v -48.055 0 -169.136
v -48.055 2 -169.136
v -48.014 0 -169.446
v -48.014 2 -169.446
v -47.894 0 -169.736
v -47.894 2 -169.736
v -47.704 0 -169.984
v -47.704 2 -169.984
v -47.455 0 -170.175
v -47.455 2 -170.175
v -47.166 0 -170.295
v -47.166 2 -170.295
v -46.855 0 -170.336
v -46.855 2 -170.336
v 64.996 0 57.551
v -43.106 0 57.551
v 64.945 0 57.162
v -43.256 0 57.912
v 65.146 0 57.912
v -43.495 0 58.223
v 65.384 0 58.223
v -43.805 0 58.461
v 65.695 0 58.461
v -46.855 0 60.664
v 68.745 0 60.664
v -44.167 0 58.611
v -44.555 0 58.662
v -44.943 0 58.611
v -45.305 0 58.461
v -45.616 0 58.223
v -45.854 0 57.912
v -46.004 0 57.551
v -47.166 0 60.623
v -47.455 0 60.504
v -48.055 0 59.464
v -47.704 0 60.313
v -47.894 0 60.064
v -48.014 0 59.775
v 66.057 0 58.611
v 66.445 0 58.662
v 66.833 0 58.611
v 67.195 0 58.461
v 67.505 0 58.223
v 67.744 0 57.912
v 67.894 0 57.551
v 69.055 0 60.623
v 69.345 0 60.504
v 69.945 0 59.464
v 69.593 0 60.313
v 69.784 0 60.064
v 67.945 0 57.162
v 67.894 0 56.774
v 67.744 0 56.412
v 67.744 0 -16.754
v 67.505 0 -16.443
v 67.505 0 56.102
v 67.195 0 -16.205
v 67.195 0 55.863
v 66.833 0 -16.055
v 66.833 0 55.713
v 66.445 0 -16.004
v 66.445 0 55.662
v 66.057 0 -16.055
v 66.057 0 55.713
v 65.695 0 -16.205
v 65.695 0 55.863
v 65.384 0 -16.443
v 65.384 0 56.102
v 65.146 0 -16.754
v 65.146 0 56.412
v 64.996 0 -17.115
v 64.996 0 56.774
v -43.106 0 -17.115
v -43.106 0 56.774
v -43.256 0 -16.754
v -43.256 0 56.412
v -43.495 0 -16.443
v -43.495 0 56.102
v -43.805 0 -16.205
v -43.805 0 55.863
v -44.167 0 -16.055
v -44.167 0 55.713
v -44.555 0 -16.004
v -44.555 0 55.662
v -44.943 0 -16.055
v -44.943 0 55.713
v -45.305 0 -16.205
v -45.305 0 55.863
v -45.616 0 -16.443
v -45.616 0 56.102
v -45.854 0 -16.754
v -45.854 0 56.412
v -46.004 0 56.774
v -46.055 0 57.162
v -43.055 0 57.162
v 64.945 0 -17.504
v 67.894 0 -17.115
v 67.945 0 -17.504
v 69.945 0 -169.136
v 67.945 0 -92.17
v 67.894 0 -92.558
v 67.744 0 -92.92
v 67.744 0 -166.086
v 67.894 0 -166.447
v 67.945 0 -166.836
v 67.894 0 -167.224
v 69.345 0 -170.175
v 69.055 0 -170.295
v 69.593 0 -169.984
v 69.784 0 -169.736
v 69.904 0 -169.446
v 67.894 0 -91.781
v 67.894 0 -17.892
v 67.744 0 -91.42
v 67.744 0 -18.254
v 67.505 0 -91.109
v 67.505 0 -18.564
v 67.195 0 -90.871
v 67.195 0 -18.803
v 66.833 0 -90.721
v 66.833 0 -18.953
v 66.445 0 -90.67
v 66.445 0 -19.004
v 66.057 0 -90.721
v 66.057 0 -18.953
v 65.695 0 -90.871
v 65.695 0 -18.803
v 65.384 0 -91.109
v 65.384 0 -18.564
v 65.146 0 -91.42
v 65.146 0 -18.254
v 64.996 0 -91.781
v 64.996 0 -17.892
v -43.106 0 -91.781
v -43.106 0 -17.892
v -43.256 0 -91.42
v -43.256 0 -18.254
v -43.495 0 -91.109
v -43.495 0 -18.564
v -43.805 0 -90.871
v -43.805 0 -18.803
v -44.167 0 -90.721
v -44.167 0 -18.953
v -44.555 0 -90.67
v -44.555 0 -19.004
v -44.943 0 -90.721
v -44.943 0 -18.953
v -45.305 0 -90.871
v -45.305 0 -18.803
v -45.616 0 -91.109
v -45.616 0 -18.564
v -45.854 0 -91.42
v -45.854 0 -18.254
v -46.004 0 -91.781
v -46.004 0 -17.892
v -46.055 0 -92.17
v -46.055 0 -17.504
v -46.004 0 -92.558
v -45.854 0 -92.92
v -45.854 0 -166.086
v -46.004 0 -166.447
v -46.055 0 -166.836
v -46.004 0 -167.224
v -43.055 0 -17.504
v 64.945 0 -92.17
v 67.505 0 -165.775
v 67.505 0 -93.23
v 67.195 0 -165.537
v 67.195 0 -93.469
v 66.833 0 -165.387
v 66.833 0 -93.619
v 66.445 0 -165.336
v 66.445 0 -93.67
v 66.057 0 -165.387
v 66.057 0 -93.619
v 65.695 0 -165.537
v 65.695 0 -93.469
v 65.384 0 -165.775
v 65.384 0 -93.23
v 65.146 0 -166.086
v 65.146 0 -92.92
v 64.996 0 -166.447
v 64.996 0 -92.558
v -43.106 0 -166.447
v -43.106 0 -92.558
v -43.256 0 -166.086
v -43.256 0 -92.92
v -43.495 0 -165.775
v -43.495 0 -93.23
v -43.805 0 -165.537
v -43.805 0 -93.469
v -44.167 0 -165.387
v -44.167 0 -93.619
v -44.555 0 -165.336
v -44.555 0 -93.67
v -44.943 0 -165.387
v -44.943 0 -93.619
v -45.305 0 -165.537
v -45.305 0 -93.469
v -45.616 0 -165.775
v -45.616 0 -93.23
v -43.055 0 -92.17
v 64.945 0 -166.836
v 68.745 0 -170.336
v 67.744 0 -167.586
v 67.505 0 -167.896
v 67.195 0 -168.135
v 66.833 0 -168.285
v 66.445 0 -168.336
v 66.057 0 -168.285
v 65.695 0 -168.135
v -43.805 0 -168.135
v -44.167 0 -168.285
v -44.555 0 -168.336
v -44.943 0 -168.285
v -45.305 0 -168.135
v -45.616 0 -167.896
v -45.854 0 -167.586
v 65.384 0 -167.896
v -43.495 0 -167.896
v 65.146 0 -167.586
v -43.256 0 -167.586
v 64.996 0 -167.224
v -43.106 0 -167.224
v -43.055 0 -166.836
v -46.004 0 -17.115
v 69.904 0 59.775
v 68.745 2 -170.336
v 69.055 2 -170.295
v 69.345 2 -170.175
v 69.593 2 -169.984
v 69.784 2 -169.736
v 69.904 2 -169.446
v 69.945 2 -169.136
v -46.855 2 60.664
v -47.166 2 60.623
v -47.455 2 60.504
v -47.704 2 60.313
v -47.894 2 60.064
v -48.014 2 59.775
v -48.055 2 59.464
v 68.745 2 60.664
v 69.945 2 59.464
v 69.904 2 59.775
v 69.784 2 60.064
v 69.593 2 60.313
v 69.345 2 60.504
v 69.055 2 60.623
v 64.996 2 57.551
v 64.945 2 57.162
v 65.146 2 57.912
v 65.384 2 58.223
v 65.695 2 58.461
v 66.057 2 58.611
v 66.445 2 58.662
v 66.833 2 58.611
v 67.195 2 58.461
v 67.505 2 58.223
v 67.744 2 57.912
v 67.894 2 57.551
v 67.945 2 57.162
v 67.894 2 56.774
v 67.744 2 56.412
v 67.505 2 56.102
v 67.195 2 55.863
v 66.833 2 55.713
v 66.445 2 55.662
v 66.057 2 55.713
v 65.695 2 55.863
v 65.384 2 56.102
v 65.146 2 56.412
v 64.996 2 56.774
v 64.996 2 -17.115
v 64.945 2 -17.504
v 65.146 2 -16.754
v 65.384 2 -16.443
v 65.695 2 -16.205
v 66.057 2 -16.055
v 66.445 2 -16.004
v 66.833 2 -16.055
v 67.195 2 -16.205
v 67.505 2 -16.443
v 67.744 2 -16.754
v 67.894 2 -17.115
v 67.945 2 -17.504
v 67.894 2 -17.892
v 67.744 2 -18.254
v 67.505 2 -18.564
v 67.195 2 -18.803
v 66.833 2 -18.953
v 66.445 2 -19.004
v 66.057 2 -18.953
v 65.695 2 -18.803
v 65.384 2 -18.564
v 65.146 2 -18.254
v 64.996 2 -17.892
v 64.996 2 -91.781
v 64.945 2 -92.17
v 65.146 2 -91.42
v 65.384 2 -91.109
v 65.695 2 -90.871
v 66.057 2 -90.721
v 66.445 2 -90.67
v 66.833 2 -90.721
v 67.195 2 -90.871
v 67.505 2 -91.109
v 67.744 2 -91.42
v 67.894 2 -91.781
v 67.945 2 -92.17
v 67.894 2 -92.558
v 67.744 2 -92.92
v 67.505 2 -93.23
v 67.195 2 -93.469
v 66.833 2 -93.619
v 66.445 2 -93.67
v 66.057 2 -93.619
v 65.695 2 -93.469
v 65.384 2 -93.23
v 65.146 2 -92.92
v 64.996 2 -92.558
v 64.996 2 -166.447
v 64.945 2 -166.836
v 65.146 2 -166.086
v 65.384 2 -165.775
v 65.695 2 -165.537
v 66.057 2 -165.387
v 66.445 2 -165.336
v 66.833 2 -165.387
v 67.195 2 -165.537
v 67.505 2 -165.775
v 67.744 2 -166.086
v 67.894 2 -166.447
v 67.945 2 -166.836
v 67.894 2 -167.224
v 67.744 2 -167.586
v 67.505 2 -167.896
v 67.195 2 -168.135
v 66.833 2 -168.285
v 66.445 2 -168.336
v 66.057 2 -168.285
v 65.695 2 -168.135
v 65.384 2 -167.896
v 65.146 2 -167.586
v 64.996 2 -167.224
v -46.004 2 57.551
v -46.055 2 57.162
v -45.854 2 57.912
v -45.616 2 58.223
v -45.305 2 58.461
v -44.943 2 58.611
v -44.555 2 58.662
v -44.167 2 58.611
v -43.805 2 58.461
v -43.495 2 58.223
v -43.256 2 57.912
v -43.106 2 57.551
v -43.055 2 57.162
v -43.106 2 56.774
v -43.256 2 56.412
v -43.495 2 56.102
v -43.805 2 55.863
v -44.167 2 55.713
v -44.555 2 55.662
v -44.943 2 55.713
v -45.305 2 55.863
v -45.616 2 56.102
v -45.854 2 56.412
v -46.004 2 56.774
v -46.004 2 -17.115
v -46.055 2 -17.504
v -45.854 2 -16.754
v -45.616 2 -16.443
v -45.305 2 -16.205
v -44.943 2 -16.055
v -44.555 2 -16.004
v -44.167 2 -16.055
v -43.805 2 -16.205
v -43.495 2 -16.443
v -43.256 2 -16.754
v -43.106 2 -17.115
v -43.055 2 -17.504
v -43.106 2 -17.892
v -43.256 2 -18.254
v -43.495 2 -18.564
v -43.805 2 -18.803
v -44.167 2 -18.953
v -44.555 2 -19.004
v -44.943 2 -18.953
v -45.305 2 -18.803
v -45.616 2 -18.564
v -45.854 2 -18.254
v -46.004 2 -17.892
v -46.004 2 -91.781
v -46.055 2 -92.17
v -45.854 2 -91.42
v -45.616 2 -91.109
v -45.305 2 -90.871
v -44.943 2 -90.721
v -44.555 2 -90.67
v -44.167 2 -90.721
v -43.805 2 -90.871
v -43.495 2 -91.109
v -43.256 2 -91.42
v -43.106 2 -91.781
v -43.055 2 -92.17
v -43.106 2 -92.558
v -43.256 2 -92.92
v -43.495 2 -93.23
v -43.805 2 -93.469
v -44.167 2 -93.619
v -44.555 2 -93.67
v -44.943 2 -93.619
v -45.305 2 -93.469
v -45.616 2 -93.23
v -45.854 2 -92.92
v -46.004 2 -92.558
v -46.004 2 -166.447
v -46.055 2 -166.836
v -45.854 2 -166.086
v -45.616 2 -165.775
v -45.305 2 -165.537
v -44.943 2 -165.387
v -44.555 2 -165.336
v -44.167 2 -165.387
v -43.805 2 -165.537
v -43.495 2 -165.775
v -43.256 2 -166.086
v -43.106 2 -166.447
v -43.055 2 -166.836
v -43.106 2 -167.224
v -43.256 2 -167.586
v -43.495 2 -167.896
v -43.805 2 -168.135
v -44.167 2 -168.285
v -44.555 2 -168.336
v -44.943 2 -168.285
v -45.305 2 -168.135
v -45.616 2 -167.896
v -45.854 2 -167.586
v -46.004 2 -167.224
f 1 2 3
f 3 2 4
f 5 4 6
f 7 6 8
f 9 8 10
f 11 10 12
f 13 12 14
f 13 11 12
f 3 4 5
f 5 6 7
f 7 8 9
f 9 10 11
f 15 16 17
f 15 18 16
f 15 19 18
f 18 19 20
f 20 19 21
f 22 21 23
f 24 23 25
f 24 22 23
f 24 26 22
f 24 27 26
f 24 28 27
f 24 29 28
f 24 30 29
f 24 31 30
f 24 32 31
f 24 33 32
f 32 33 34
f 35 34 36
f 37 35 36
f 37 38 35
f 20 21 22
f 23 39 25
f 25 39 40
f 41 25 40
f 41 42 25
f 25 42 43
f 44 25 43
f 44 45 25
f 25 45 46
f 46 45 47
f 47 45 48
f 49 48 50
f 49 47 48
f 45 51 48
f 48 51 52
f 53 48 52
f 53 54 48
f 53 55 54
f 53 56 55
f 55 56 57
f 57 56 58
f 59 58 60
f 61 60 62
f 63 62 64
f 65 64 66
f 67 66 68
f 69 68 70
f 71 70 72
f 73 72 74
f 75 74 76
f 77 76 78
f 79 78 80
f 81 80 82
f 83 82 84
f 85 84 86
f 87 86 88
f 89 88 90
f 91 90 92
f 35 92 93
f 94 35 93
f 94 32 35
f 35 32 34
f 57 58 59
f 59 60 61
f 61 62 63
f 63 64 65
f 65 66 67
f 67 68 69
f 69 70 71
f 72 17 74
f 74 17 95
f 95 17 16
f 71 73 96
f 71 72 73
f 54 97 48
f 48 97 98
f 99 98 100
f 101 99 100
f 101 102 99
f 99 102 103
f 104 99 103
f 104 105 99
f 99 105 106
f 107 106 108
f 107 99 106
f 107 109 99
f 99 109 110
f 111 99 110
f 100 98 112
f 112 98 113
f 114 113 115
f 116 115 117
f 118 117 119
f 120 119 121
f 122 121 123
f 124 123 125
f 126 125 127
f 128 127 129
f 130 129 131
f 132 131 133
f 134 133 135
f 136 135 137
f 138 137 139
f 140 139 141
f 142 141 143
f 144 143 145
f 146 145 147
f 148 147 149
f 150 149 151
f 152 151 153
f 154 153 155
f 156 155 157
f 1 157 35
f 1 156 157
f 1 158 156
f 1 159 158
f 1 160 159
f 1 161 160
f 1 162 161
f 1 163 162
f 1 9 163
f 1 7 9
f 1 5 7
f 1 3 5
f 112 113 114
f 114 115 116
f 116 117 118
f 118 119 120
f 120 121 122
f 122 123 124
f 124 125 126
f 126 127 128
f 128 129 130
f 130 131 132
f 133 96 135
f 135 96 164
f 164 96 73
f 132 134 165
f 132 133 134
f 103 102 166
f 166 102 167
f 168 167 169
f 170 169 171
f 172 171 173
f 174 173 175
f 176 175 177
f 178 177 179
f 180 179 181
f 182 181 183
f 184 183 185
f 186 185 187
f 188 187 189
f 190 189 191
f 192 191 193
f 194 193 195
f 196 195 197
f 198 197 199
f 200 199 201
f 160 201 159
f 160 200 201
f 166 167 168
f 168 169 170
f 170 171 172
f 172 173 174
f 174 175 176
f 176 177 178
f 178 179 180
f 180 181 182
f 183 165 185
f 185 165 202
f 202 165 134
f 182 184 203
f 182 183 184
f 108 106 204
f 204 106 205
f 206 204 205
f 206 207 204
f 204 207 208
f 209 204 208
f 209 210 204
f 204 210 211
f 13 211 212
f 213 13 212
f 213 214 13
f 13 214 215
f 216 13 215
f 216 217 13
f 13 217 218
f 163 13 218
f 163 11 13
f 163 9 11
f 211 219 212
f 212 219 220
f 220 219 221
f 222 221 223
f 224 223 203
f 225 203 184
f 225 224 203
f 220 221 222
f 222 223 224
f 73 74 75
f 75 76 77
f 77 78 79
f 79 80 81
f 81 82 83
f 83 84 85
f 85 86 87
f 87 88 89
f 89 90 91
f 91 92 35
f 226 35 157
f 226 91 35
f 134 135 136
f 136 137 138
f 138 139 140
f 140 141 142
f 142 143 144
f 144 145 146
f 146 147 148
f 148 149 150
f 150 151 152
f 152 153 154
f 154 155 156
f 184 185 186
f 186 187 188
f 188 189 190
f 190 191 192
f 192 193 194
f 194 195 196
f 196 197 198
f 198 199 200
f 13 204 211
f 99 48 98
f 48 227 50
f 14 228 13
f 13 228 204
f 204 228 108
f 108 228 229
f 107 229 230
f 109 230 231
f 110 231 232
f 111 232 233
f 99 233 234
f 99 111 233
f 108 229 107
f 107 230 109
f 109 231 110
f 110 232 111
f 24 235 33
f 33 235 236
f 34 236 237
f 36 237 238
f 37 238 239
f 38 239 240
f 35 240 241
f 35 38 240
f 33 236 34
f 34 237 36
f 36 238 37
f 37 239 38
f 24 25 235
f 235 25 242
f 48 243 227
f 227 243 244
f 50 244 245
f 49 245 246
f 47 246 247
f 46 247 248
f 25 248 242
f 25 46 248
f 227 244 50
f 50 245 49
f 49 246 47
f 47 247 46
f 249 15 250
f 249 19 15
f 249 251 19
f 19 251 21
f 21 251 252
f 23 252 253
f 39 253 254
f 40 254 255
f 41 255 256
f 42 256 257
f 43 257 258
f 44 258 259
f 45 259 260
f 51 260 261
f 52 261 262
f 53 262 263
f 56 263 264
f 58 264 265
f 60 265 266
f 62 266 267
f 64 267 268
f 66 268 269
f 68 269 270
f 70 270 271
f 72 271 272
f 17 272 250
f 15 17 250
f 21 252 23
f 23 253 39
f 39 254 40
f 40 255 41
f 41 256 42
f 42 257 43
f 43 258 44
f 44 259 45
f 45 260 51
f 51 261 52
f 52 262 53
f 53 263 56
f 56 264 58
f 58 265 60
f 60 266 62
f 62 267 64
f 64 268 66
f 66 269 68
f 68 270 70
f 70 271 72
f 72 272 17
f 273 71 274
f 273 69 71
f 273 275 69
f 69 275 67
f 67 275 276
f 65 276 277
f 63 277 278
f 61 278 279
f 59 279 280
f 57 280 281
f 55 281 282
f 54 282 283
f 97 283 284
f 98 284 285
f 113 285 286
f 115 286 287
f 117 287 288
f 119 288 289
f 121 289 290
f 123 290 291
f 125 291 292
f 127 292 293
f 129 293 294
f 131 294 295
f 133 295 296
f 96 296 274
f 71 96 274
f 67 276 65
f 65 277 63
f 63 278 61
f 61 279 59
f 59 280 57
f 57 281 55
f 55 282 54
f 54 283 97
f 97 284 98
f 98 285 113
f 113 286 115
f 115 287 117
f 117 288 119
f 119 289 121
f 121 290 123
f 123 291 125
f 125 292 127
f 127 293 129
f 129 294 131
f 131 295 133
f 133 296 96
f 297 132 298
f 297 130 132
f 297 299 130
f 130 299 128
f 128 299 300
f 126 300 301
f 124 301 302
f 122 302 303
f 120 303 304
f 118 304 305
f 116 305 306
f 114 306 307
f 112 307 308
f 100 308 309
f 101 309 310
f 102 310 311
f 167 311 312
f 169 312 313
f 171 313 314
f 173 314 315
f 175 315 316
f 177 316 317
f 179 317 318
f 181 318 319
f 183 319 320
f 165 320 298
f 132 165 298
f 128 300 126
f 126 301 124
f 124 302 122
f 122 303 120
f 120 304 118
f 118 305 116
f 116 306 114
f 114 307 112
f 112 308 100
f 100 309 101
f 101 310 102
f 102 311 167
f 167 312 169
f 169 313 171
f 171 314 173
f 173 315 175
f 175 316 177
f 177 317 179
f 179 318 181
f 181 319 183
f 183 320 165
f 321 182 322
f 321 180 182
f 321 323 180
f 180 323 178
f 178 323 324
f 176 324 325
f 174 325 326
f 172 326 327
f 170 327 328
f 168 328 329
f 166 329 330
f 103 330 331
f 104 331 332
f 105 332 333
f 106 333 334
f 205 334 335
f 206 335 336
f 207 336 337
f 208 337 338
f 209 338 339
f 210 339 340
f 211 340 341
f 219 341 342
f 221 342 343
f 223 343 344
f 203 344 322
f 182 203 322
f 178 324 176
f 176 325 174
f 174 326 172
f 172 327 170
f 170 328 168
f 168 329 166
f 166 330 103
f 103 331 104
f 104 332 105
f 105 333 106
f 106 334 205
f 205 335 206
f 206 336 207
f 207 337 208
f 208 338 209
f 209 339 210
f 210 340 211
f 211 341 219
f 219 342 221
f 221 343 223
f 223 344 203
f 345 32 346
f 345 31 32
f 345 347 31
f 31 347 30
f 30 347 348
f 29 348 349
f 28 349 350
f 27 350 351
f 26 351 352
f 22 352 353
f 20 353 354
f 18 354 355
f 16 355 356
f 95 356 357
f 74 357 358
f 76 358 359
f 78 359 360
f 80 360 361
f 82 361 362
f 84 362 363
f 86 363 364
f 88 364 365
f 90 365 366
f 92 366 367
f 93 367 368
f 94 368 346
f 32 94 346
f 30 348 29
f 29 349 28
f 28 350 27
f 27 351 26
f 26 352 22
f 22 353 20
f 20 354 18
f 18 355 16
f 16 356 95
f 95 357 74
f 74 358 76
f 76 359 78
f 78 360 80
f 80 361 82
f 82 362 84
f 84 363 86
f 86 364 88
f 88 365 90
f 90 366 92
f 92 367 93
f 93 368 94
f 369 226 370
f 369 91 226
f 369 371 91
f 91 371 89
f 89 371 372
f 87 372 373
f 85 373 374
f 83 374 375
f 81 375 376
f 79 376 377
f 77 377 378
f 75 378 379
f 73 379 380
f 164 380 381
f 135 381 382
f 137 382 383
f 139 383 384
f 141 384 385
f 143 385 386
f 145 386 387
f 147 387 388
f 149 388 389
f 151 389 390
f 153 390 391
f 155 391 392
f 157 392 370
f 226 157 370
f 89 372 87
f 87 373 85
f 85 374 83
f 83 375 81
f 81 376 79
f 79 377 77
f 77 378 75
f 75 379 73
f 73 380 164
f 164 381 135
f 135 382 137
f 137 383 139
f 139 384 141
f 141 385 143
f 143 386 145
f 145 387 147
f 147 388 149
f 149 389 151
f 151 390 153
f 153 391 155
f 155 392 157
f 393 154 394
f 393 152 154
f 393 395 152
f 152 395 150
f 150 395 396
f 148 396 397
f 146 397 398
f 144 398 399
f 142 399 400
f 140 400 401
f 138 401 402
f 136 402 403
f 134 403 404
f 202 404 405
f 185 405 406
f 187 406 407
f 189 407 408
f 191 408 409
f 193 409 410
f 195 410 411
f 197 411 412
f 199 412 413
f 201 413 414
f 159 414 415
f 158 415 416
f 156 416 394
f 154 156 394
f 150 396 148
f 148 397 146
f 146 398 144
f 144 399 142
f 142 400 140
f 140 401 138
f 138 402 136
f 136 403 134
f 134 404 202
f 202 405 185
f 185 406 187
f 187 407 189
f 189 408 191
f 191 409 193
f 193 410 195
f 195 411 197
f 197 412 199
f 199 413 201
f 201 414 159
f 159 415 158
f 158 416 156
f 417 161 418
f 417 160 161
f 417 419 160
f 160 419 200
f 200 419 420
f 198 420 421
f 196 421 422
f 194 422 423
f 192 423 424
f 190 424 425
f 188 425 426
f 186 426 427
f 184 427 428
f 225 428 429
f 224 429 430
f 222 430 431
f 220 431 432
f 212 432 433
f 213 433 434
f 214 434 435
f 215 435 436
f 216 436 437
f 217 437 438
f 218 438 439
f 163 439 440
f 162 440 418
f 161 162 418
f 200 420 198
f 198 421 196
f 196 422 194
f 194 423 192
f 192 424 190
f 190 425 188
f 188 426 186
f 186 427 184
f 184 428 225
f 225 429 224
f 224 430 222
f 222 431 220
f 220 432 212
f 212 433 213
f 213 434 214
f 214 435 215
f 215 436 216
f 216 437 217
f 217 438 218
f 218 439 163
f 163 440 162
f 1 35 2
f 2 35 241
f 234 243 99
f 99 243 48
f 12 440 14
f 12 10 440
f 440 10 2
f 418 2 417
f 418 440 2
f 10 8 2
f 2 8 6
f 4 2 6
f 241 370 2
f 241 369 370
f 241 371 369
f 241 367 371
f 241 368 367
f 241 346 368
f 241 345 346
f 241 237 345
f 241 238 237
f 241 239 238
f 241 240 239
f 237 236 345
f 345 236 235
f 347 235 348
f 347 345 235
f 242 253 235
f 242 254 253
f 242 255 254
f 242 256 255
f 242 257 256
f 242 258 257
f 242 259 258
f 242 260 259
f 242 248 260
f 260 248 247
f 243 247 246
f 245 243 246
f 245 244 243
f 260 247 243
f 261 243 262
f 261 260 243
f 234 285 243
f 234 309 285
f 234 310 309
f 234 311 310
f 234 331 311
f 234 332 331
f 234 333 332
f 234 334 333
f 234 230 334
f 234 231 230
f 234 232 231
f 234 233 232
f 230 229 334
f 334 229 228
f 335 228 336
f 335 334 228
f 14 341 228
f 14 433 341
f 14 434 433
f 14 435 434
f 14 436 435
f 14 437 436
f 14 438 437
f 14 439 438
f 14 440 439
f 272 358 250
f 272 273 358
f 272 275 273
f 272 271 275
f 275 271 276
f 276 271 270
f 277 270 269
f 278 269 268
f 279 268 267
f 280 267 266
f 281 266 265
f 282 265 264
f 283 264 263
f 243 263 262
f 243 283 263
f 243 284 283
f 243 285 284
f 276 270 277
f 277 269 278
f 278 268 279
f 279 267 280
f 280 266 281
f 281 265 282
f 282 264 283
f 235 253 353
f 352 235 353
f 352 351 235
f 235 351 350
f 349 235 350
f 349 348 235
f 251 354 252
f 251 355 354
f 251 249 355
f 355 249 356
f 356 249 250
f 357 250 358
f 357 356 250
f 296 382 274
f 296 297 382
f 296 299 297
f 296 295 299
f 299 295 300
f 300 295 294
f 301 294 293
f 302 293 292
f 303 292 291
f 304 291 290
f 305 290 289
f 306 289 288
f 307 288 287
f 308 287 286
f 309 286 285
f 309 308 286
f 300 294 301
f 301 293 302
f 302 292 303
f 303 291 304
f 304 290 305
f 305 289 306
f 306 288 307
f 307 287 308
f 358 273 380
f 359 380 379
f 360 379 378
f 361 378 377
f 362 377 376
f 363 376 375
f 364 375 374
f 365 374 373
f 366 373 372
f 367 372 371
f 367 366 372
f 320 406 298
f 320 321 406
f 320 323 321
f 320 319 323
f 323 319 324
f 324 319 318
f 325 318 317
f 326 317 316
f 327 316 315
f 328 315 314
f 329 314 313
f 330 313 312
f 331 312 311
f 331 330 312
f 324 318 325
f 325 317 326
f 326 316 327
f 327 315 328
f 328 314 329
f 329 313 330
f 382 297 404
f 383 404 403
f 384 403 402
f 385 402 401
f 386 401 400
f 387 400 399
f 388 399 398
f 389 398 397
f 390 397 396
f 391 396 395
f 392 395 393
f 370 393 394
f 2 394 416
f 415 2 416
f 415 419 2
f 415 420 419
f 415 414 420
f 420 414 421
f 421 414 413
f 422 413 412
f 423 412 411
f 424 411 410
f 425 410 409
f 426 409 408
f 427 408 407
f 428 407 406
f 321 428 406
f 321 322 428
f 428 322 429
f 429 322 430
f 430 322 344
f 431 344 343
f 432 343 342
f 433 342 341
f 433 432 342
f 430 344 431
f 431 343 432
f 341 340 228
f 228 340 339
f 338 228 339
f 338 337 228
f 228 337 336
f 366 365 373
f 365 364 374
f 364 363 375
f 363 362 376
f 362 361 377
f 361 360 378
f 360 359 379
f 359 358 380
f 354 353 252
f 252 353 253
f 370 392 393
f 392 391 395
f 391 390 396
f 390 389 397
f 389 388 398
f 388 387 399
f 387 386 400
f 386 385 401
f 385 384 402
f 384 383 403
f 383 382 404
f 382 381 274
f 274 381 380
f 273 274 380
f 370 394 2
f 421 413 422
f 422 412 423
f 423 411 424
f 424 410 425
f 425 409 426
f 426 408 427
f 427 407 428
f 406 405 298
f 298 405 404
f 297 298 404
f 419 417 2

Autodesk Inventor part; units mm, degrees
ref_plane "YZ Plane" through (0, 0, 0) normal (1, 0, 0) x (0, 1, 0)
ref_plane "XZ Plane" through (0, 0, 0) normal (0, 1, 0) x (-1, 0, 0)
ref_plane "XY Plane" through (0, 0, 0) normal (0, 0, 1) x (1, 0, 0)
sketch "Sketch1" plane through (0, 0, 0) normal (0, 1, 0) x (-1, 0, 0)
  line L0 (48.0552, 60.6643) -> (-69.9448, 60.6643)
  line L1 (-69.9448, 60.6643) -> (-69.9448, -170.3357)
  line L2 (-69.9448, -170.3357) -> (48.0552, -170.3357)
  line L3 (48.0552, -170.3357) -> (48.0552, 60.6643)
  line L4 (48.0552, -54.8357) -> (-69.9448, -54.8357)
  circle A0 centre (44.5552, -166.8357) radius 1.5
  point P0 (0, 0)
  dimension "d0" = 118
  dimension "d1" = 231
  dimension "d2" = 115.5
  dimension "d3" = 3
  dimension "d4" = 3.5
  dimension "d5" = 3.5
extrude "Base" add sketch "Sketch1" along normal blind 2 contours L3 L4 L1 L0 | L3 L2 L1 L4 | A0
extrude "Screw Hole" cut sketch "Sketch1" along normal blind 3 contours A0
pattern_linear "Screw Hole Pattern" count 4 spacing 74.666 along (0, 0, 1) count 2 spacing 111 along (1, 0, 0) of "Screw Hole"
fillet "Corner Fillet" radius 1.2 4 edges at (69.9448, 1, 60.6643) (-48.0552, 1, 60.6643) (69.9448, 1, -170.3357) (-48.0552, 1, -170.3357)
extrude "Sectioning Cut (rear only)" [suppressed]
extrude "Sectioning Cut (front only)" [suppressed]
properties part number "case lid"
